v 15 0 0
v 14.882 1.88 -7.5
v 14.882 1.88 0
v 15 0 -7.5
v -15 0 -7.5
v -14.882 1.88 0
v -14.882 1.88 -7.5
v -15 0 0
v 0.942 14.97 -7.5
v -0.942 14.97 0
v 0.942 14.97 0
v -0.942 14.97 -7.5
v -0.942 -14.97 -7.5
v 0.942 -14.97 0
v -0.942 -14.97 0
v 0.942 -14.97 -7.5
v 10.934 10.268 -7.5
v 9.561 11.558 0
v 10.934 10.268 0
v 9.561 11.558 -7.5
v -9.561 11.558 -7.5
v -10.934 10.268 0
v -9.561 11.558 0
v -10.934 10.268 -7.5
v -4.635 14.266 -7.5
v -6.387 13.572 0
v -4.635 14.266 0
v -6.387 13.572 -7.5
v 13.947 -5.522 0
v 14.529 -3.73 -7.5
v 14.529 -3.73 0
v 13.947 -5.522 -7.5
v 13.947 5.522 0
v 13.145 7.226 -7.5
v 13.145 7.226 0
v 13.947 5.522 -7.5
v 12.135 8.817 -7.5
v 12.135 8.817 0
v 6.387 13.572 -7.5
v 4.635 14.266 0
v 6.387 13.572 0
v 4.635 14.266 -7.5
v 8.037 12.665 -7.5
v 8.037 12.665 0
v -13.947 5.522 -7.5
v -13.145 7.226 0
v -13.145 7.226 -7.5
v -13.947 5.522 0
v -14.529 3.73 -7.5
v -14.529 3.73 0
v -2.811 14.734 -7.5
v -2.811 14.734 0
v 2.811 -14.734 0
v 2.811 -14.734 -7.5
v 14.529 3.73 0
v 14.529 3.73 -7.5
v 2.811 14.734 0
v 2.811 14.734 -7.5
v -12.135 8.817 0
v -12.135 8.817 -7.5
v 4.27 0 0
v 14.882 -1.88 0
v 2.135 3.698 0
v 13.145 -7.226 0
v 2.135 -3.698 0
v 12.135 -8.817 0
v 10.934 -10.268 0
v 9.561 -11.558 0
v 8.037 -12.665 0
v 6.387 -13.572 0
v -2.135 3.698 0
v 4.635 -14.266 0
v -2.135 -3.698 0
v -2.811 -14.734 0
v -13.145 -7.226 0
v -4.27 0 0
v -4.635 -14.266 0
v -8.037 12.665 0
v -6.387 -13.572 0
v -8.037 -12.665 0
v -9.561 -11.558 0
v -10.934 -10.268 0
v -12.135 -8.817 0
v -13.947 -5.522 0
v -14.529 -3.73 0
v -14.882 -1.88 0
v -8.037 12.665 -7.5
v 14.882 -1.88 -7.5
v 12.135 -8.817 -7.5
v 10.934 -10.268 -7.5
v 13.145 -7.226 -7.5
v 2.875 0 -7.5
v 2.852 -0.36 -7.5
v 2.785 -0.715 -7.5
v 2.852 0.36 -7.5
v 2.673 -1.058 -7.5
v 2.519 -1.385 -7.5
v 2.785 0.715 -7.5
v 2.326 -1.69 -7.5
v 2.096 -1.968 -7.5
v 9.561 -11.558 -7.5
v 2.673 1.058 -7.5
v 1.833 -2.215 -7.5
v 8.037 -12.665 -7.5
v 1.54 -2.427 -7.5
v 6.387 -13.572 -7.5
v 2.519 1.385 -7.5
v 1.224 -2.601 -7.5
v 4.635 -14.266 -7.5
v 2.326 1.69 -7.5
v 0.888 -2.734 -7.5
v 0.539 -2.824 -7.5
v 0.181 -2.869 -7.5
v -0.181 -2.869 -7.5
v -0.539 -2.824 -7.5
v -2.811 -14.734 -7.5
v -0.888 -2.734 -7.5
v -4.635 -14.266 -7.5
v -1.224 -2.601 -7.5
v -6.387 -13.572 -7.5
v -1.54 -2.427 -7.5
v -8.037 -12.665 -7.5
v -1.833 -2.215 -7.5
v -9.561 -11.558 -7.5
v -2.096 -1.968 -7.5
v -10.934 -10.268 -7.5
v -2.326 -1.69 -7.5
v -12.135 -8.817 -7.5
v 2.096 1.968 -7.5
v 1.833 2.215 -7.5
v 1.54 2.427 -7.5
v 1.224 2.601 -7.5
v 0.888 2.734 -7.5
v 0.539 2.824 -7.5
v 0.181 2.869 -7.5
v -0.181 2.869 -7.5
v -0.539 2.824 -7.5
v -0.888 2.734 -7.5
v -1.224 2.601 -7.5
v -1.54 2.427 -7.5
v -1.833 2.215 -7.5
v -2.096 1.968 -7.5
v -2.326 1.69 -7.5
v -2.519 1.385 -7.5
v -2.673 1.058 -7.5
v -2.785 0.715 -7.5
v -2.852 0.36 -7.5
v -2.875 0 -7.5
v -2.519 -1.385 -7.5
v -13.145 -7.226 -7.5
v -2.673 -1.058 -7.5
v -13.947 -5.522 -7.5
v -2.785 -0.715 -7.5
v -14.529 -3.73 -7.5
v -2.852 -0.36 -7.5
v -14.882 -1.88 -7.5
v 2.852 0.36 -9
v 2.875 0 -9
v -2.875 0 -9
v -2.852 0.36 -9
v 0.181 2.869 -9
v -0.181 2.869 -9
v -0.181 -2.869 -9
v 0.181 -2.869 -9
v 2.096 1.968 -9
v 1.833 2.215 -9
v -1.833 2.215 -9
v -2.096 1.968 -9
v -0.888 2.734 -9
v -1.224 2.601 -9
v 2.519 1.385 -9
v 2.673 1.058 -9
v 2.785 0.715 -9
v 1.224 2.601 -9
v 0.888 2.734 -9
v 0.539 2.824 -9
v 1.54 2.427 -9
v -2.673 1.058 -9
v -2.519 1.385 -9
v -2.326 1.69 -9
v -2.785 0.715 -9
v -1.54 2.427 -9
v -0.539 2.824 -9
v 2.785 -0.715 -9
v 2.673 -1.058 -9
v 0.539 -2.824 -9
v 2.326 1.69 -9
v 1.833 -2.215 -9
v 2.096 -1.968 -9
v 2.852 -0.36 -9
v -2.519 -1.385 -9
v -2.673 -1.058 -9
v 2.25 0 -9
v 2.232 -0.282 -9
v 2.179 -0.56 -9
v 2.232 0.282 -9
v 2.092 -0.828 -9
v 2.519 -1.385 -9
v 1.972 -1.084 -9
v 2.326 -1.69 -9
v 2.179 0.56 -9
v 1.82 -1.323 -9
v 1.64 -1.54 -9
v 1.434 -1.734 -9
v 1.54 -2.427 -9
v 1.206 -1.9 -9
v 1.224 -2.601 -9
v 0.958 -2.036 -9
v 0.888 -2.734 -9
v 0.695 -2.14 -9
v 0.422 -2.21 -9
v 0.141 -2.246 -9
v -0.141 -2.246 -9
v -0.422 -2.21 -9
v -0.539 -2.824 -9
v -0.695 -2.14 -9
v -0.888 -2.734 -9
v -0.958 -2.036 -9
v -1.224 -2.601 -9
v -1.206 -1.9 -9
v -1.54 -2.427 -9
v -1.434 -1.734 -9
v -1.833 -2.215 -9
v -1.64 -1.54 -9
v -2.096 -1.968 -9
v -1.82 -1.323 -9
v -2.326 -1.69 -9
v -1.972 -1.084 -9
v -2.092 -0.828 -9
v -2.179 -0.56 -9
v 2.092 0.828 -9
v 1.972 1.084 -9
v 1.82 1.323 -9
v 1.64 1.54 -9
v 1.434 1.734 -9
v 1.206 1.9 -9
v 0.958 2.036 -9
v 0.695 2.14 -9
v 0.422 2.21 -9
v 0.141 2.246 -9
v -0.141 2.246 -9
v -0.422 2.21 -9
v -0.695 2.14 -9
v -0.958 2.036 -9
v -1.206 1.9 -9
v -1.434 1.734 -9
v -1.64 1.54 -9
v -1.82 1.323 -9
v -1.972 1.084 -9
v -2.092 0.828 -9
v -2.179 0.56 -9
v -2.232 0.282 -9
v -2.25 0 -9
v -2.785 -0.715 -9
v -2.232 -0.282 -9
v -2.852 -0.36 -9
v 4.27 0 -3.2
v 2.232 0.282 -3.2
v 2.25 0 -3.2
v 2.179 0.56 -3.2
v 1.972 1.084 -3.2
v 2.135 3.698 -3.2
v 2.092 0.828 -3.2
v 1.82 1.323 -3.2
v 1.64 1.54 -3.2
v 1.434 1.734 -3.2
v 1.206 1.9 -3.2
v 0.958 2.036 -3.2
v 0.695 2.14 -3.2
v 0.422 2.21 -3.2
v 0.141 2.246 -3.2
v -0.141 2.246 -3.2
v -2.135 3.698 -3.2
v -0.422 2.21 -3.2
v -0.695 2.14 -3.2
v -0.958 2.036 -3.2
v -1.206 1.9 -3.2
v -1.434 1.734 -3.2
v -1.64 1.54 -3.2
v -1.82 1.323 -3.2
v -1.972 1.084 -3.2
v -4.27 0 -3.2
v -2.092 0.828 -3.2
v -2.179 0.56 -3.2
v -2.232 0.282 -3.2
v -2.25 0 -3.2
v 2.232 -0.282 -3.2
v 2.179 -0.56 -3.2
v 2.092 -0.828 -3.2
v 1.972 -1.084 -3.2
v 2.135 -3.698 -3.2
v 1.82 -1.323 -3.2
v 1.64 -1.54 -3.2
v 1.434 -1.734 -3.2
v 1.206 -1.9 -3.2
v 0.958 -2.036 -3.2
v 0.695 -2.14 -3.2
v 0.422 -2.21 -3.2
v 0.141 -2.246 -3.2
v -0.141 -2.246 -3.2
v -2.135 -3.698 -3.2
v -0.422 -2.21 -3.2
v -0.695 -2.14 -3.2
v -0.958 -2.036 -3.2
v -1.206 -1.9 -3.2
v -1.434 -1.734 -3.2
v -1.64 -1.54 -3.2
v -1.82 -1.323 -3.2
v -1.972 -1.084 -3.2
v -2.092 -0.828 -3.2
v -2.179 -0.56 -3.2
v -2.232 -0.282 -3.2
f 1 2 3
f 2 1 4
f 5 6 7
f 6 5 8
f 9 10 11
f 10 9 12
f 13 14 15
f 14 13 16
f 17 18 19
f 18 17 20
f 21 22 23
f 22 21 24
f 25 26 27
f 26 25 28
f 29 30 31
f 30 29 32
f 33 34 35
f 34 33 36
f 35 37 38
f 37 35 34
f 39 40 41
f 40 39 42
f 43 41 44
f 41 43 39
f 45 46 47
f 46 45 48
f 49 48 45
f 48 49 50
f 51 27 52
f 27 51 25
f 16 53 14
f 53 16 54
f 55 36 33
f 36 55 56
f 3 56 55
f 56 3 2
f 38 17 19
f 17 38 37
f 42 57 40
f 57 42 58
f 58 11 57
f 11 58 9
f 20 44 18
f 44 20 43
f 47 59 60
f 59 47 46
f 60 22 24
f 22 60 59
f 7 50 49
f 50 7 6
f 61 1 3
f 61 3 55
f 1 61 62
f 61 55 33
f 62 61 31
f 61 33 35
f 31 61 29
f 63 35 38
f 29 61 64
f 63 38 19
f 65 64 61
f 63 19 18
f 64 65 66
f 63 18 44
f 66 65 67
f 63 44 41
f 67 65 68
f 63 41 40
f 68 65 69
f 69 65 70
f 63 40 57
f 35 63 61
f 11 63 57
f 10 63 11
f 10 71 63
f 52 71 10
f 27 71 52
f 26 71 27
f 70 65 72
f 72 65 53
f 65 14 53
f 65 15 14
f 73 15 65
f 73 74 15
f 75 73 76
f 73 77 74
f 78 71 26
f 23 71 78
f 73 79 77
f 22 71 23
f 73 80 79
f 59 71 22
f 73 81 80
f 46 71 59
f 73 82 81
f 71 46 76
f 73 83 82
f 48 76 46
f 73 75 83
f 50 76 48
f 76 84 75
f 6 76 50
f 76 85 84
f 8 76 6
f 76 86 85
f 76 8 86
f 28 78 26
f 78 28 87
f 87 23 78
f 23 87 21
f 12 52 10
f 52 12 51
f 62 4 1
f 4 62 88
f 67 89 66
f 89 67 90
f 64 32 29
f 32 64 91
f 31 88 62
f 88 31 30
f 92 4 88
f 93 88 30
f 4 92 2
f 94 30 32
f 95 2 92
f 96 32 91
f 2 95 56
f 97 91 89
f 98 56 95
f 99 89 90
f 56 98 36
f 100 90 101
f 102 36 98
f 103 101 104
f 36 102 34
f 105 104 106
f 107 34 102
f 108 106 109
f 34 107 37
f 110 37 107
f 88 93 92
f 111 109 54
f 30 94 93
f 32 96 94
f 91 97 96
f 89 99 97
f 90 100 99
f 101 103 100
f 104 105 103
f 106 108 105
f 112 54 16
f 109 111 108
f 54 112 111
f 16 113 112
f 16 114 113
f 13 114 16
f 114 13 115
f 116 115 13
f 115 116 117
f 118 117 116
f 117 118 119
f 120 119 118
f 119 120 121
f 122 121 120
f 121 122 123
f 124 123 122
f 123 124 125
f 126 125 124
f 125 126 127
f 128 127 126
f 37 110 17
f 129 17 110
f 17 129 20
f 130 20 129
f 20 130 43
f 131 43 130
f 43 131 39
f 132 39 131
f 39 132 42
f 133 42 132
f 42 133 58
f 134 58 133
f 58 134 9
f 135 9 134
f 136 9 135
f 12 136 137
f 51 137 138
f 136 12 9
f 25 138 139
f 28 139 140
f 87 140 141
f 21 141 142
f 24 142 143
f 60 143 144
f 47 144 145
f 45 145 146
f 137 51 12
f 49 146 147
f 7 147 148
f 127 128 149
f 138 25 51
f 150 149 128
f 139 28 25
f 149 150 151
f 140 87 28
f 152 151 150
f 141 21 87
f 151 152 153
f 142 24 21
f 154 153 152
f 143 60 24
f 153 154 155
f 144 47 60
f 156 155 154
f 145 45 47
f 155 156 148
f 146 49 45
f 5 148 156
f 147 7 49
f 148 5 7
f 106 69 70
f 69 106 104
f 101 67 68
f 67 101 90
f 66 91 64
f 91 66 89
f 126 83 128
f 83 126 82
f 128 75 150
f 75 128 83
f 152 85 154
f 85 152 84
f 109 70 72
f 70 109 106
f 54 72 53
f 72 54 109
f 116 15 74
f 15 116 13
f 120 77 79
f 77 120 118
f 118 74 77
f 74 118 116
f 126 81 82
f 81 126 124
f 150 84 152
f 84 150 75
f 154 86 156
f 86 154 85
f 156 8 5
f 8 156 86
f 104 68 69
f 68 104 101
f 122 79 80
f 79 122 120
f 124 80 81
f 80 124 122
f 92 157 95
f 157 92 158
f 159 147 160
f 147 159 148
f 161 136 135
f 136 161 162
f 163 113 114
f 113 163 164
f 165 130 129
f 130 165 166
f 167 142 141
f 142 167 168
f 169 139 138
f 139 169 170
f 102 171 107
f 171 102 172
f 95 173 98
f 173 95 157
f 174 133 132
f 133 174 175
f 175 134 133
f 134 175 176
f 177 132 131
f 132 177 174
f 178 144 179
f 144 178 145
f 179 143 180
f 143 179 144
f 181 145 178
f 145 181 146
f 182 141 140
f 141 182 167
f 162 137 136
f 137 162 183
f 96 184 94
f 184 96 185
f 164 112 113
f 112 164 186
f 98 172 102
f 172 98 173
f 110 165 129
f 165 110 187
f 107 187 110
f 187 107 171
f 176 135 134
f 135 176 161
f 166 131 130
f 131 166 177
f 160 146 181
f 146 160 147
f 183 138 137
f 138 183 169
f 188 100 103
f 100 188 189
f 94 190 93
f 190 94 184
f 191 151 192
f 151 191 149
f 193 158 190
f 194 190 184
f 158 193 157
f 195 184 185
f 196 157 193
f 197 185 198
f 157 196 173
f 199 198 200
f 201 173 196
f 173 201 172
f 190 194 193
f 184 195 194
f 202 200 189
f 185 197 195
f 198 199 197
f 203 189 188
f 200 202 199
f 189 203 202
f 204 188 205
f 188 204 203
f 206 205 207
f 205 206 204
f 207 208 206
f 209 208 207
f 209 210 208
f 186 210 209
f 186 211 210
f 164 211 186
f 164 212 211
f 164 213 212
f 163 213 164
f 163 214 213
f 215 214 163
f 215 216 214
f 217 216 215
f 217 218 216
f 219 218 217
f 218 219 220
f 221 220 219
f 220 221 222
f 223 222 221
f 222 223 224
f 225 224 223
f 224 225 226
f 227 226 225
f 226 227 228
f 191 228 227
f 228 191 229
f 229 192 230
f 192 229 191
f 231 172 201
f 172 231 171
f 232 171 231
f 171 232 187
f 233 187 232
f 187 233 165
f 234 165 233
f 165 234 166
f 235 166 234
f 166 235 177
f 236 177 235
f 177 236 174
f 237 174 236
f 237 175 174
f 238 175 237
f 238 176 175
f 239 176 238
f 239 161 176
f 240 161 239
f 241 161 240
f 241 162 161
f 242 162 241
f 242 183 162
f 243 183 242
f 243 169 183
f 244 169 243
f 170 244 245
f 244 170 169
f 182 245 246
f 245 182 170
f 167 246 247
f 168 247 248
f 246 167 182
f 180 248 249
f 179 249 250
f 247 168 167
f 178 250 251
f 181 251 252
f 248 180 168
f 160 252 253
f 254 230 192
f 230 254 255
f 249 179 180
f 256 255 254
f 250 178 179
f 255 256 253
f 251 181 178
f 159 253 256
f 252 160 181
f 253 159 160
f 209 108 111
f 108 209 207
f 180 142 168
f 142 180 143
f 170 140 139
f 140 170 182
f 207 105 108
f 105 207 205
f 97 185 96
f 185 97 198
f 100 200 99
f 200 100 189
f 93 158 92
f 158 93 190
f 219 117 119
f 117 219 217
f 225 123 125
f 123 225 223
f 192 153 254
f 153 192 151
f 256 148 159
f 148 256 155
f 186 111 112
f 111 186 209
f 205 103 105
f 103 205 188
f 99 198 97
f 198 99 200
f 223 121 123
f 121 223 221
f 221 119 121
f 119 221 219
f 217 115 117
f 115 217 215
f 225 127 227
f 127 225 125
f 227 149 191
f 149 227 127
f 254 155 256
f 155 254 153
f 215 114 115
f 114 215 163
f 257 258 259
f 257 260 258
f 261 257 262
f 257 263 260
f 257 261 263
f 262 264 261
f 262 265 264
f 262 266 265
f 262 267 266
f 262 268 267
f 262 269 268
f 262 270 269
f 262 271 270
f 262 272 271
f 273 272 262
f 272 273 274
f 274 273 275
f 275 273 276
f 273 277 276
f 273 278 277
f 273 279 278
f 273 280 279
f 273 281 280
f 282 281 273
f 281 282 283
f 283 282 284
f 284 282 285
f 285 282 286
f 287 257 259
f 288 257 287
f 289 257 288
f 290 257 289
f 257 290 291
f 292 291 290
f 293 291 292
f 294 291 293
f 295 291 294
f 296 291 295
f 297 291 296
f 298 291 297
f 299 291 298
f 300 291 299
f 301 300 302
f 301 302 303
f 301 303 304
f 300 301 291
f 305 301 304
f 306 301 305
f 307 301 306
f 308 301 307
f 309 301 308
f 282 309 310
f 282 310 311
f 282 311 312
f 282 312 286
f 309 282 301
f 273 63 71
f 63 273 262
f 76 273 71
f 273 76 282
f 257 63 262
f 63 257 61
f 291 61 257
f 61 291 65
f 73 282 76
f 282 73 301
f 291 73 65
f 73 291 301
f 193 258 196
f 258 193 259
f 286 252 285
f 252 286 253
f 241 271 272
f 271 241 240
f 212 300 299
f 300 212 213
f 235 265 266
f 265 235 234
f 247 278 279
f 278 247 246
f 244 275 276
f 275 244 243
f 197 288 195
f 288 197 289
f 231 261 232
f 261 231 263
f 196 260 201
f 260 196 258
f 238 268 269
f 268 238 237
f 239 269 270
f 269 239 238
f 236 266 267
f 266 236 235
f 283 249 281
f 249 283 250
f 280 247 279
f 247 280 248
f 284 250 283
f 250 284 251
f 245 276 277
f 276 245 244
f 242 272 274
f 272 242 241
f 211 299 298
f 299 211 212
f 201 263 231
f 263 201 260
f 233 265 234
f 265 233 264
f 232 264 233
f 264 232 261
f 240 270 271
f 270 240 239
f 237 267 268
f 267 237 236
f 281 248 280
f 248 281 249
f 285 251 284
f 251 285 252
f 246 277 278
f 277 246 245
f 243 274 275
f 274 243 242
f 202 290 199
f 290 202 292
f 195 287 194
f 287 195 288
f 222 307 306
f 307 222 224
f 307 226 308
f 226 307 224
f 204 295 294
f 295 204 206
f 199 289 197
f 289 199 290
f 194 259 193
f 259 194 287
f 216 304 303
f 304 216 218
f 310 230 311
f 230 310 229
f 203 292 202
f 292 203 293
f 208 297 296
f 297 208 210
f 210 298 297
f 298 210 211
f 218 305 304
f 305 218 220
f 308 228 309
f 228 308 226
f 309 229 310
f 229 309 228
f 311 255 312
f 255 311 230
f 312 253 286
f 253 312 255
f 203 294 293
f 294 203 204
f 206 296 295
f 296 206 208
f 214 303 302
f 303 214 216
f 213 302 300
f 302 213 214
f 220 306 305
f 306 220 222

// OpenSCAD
$fn = 50;


difference() {
	union() {
		translate(v = [0, 0, -7.5000000000]) {
			cylinder(h = 7.5000000000, r = 15.0000000000);
		}
		translate(v = [0, 0, -9.0000000000]) {
			cylinder(h = 9, r = 2.8750000000);
		}
	}
	union() {
		translate(v = [0, 0, 0]) {
			rotate(a = [0, 0, 0]) {
				difference() {
					union() {
						translate(v = [0, 0, -3.2000000000]) {
							linear_extrude(height = 3.2000000000) {
								polygon(points = [[4.2698000000, 0.0000000000], [2.1349000000, 3.6977552691], [-2.1349000000, 3.6977552691], [-4.2698000000, 0.0000000000], [-2.1349000000, -3.6977552691], [2.1349000000, -3.6977552691]]);
							}
						}
					}
					union();
				}
			}
		}
		#translate(v = [0, 0, -100.0000000000]) {
			cylinder(h = 200, r = 2.2500000000);
		}
	}
}
